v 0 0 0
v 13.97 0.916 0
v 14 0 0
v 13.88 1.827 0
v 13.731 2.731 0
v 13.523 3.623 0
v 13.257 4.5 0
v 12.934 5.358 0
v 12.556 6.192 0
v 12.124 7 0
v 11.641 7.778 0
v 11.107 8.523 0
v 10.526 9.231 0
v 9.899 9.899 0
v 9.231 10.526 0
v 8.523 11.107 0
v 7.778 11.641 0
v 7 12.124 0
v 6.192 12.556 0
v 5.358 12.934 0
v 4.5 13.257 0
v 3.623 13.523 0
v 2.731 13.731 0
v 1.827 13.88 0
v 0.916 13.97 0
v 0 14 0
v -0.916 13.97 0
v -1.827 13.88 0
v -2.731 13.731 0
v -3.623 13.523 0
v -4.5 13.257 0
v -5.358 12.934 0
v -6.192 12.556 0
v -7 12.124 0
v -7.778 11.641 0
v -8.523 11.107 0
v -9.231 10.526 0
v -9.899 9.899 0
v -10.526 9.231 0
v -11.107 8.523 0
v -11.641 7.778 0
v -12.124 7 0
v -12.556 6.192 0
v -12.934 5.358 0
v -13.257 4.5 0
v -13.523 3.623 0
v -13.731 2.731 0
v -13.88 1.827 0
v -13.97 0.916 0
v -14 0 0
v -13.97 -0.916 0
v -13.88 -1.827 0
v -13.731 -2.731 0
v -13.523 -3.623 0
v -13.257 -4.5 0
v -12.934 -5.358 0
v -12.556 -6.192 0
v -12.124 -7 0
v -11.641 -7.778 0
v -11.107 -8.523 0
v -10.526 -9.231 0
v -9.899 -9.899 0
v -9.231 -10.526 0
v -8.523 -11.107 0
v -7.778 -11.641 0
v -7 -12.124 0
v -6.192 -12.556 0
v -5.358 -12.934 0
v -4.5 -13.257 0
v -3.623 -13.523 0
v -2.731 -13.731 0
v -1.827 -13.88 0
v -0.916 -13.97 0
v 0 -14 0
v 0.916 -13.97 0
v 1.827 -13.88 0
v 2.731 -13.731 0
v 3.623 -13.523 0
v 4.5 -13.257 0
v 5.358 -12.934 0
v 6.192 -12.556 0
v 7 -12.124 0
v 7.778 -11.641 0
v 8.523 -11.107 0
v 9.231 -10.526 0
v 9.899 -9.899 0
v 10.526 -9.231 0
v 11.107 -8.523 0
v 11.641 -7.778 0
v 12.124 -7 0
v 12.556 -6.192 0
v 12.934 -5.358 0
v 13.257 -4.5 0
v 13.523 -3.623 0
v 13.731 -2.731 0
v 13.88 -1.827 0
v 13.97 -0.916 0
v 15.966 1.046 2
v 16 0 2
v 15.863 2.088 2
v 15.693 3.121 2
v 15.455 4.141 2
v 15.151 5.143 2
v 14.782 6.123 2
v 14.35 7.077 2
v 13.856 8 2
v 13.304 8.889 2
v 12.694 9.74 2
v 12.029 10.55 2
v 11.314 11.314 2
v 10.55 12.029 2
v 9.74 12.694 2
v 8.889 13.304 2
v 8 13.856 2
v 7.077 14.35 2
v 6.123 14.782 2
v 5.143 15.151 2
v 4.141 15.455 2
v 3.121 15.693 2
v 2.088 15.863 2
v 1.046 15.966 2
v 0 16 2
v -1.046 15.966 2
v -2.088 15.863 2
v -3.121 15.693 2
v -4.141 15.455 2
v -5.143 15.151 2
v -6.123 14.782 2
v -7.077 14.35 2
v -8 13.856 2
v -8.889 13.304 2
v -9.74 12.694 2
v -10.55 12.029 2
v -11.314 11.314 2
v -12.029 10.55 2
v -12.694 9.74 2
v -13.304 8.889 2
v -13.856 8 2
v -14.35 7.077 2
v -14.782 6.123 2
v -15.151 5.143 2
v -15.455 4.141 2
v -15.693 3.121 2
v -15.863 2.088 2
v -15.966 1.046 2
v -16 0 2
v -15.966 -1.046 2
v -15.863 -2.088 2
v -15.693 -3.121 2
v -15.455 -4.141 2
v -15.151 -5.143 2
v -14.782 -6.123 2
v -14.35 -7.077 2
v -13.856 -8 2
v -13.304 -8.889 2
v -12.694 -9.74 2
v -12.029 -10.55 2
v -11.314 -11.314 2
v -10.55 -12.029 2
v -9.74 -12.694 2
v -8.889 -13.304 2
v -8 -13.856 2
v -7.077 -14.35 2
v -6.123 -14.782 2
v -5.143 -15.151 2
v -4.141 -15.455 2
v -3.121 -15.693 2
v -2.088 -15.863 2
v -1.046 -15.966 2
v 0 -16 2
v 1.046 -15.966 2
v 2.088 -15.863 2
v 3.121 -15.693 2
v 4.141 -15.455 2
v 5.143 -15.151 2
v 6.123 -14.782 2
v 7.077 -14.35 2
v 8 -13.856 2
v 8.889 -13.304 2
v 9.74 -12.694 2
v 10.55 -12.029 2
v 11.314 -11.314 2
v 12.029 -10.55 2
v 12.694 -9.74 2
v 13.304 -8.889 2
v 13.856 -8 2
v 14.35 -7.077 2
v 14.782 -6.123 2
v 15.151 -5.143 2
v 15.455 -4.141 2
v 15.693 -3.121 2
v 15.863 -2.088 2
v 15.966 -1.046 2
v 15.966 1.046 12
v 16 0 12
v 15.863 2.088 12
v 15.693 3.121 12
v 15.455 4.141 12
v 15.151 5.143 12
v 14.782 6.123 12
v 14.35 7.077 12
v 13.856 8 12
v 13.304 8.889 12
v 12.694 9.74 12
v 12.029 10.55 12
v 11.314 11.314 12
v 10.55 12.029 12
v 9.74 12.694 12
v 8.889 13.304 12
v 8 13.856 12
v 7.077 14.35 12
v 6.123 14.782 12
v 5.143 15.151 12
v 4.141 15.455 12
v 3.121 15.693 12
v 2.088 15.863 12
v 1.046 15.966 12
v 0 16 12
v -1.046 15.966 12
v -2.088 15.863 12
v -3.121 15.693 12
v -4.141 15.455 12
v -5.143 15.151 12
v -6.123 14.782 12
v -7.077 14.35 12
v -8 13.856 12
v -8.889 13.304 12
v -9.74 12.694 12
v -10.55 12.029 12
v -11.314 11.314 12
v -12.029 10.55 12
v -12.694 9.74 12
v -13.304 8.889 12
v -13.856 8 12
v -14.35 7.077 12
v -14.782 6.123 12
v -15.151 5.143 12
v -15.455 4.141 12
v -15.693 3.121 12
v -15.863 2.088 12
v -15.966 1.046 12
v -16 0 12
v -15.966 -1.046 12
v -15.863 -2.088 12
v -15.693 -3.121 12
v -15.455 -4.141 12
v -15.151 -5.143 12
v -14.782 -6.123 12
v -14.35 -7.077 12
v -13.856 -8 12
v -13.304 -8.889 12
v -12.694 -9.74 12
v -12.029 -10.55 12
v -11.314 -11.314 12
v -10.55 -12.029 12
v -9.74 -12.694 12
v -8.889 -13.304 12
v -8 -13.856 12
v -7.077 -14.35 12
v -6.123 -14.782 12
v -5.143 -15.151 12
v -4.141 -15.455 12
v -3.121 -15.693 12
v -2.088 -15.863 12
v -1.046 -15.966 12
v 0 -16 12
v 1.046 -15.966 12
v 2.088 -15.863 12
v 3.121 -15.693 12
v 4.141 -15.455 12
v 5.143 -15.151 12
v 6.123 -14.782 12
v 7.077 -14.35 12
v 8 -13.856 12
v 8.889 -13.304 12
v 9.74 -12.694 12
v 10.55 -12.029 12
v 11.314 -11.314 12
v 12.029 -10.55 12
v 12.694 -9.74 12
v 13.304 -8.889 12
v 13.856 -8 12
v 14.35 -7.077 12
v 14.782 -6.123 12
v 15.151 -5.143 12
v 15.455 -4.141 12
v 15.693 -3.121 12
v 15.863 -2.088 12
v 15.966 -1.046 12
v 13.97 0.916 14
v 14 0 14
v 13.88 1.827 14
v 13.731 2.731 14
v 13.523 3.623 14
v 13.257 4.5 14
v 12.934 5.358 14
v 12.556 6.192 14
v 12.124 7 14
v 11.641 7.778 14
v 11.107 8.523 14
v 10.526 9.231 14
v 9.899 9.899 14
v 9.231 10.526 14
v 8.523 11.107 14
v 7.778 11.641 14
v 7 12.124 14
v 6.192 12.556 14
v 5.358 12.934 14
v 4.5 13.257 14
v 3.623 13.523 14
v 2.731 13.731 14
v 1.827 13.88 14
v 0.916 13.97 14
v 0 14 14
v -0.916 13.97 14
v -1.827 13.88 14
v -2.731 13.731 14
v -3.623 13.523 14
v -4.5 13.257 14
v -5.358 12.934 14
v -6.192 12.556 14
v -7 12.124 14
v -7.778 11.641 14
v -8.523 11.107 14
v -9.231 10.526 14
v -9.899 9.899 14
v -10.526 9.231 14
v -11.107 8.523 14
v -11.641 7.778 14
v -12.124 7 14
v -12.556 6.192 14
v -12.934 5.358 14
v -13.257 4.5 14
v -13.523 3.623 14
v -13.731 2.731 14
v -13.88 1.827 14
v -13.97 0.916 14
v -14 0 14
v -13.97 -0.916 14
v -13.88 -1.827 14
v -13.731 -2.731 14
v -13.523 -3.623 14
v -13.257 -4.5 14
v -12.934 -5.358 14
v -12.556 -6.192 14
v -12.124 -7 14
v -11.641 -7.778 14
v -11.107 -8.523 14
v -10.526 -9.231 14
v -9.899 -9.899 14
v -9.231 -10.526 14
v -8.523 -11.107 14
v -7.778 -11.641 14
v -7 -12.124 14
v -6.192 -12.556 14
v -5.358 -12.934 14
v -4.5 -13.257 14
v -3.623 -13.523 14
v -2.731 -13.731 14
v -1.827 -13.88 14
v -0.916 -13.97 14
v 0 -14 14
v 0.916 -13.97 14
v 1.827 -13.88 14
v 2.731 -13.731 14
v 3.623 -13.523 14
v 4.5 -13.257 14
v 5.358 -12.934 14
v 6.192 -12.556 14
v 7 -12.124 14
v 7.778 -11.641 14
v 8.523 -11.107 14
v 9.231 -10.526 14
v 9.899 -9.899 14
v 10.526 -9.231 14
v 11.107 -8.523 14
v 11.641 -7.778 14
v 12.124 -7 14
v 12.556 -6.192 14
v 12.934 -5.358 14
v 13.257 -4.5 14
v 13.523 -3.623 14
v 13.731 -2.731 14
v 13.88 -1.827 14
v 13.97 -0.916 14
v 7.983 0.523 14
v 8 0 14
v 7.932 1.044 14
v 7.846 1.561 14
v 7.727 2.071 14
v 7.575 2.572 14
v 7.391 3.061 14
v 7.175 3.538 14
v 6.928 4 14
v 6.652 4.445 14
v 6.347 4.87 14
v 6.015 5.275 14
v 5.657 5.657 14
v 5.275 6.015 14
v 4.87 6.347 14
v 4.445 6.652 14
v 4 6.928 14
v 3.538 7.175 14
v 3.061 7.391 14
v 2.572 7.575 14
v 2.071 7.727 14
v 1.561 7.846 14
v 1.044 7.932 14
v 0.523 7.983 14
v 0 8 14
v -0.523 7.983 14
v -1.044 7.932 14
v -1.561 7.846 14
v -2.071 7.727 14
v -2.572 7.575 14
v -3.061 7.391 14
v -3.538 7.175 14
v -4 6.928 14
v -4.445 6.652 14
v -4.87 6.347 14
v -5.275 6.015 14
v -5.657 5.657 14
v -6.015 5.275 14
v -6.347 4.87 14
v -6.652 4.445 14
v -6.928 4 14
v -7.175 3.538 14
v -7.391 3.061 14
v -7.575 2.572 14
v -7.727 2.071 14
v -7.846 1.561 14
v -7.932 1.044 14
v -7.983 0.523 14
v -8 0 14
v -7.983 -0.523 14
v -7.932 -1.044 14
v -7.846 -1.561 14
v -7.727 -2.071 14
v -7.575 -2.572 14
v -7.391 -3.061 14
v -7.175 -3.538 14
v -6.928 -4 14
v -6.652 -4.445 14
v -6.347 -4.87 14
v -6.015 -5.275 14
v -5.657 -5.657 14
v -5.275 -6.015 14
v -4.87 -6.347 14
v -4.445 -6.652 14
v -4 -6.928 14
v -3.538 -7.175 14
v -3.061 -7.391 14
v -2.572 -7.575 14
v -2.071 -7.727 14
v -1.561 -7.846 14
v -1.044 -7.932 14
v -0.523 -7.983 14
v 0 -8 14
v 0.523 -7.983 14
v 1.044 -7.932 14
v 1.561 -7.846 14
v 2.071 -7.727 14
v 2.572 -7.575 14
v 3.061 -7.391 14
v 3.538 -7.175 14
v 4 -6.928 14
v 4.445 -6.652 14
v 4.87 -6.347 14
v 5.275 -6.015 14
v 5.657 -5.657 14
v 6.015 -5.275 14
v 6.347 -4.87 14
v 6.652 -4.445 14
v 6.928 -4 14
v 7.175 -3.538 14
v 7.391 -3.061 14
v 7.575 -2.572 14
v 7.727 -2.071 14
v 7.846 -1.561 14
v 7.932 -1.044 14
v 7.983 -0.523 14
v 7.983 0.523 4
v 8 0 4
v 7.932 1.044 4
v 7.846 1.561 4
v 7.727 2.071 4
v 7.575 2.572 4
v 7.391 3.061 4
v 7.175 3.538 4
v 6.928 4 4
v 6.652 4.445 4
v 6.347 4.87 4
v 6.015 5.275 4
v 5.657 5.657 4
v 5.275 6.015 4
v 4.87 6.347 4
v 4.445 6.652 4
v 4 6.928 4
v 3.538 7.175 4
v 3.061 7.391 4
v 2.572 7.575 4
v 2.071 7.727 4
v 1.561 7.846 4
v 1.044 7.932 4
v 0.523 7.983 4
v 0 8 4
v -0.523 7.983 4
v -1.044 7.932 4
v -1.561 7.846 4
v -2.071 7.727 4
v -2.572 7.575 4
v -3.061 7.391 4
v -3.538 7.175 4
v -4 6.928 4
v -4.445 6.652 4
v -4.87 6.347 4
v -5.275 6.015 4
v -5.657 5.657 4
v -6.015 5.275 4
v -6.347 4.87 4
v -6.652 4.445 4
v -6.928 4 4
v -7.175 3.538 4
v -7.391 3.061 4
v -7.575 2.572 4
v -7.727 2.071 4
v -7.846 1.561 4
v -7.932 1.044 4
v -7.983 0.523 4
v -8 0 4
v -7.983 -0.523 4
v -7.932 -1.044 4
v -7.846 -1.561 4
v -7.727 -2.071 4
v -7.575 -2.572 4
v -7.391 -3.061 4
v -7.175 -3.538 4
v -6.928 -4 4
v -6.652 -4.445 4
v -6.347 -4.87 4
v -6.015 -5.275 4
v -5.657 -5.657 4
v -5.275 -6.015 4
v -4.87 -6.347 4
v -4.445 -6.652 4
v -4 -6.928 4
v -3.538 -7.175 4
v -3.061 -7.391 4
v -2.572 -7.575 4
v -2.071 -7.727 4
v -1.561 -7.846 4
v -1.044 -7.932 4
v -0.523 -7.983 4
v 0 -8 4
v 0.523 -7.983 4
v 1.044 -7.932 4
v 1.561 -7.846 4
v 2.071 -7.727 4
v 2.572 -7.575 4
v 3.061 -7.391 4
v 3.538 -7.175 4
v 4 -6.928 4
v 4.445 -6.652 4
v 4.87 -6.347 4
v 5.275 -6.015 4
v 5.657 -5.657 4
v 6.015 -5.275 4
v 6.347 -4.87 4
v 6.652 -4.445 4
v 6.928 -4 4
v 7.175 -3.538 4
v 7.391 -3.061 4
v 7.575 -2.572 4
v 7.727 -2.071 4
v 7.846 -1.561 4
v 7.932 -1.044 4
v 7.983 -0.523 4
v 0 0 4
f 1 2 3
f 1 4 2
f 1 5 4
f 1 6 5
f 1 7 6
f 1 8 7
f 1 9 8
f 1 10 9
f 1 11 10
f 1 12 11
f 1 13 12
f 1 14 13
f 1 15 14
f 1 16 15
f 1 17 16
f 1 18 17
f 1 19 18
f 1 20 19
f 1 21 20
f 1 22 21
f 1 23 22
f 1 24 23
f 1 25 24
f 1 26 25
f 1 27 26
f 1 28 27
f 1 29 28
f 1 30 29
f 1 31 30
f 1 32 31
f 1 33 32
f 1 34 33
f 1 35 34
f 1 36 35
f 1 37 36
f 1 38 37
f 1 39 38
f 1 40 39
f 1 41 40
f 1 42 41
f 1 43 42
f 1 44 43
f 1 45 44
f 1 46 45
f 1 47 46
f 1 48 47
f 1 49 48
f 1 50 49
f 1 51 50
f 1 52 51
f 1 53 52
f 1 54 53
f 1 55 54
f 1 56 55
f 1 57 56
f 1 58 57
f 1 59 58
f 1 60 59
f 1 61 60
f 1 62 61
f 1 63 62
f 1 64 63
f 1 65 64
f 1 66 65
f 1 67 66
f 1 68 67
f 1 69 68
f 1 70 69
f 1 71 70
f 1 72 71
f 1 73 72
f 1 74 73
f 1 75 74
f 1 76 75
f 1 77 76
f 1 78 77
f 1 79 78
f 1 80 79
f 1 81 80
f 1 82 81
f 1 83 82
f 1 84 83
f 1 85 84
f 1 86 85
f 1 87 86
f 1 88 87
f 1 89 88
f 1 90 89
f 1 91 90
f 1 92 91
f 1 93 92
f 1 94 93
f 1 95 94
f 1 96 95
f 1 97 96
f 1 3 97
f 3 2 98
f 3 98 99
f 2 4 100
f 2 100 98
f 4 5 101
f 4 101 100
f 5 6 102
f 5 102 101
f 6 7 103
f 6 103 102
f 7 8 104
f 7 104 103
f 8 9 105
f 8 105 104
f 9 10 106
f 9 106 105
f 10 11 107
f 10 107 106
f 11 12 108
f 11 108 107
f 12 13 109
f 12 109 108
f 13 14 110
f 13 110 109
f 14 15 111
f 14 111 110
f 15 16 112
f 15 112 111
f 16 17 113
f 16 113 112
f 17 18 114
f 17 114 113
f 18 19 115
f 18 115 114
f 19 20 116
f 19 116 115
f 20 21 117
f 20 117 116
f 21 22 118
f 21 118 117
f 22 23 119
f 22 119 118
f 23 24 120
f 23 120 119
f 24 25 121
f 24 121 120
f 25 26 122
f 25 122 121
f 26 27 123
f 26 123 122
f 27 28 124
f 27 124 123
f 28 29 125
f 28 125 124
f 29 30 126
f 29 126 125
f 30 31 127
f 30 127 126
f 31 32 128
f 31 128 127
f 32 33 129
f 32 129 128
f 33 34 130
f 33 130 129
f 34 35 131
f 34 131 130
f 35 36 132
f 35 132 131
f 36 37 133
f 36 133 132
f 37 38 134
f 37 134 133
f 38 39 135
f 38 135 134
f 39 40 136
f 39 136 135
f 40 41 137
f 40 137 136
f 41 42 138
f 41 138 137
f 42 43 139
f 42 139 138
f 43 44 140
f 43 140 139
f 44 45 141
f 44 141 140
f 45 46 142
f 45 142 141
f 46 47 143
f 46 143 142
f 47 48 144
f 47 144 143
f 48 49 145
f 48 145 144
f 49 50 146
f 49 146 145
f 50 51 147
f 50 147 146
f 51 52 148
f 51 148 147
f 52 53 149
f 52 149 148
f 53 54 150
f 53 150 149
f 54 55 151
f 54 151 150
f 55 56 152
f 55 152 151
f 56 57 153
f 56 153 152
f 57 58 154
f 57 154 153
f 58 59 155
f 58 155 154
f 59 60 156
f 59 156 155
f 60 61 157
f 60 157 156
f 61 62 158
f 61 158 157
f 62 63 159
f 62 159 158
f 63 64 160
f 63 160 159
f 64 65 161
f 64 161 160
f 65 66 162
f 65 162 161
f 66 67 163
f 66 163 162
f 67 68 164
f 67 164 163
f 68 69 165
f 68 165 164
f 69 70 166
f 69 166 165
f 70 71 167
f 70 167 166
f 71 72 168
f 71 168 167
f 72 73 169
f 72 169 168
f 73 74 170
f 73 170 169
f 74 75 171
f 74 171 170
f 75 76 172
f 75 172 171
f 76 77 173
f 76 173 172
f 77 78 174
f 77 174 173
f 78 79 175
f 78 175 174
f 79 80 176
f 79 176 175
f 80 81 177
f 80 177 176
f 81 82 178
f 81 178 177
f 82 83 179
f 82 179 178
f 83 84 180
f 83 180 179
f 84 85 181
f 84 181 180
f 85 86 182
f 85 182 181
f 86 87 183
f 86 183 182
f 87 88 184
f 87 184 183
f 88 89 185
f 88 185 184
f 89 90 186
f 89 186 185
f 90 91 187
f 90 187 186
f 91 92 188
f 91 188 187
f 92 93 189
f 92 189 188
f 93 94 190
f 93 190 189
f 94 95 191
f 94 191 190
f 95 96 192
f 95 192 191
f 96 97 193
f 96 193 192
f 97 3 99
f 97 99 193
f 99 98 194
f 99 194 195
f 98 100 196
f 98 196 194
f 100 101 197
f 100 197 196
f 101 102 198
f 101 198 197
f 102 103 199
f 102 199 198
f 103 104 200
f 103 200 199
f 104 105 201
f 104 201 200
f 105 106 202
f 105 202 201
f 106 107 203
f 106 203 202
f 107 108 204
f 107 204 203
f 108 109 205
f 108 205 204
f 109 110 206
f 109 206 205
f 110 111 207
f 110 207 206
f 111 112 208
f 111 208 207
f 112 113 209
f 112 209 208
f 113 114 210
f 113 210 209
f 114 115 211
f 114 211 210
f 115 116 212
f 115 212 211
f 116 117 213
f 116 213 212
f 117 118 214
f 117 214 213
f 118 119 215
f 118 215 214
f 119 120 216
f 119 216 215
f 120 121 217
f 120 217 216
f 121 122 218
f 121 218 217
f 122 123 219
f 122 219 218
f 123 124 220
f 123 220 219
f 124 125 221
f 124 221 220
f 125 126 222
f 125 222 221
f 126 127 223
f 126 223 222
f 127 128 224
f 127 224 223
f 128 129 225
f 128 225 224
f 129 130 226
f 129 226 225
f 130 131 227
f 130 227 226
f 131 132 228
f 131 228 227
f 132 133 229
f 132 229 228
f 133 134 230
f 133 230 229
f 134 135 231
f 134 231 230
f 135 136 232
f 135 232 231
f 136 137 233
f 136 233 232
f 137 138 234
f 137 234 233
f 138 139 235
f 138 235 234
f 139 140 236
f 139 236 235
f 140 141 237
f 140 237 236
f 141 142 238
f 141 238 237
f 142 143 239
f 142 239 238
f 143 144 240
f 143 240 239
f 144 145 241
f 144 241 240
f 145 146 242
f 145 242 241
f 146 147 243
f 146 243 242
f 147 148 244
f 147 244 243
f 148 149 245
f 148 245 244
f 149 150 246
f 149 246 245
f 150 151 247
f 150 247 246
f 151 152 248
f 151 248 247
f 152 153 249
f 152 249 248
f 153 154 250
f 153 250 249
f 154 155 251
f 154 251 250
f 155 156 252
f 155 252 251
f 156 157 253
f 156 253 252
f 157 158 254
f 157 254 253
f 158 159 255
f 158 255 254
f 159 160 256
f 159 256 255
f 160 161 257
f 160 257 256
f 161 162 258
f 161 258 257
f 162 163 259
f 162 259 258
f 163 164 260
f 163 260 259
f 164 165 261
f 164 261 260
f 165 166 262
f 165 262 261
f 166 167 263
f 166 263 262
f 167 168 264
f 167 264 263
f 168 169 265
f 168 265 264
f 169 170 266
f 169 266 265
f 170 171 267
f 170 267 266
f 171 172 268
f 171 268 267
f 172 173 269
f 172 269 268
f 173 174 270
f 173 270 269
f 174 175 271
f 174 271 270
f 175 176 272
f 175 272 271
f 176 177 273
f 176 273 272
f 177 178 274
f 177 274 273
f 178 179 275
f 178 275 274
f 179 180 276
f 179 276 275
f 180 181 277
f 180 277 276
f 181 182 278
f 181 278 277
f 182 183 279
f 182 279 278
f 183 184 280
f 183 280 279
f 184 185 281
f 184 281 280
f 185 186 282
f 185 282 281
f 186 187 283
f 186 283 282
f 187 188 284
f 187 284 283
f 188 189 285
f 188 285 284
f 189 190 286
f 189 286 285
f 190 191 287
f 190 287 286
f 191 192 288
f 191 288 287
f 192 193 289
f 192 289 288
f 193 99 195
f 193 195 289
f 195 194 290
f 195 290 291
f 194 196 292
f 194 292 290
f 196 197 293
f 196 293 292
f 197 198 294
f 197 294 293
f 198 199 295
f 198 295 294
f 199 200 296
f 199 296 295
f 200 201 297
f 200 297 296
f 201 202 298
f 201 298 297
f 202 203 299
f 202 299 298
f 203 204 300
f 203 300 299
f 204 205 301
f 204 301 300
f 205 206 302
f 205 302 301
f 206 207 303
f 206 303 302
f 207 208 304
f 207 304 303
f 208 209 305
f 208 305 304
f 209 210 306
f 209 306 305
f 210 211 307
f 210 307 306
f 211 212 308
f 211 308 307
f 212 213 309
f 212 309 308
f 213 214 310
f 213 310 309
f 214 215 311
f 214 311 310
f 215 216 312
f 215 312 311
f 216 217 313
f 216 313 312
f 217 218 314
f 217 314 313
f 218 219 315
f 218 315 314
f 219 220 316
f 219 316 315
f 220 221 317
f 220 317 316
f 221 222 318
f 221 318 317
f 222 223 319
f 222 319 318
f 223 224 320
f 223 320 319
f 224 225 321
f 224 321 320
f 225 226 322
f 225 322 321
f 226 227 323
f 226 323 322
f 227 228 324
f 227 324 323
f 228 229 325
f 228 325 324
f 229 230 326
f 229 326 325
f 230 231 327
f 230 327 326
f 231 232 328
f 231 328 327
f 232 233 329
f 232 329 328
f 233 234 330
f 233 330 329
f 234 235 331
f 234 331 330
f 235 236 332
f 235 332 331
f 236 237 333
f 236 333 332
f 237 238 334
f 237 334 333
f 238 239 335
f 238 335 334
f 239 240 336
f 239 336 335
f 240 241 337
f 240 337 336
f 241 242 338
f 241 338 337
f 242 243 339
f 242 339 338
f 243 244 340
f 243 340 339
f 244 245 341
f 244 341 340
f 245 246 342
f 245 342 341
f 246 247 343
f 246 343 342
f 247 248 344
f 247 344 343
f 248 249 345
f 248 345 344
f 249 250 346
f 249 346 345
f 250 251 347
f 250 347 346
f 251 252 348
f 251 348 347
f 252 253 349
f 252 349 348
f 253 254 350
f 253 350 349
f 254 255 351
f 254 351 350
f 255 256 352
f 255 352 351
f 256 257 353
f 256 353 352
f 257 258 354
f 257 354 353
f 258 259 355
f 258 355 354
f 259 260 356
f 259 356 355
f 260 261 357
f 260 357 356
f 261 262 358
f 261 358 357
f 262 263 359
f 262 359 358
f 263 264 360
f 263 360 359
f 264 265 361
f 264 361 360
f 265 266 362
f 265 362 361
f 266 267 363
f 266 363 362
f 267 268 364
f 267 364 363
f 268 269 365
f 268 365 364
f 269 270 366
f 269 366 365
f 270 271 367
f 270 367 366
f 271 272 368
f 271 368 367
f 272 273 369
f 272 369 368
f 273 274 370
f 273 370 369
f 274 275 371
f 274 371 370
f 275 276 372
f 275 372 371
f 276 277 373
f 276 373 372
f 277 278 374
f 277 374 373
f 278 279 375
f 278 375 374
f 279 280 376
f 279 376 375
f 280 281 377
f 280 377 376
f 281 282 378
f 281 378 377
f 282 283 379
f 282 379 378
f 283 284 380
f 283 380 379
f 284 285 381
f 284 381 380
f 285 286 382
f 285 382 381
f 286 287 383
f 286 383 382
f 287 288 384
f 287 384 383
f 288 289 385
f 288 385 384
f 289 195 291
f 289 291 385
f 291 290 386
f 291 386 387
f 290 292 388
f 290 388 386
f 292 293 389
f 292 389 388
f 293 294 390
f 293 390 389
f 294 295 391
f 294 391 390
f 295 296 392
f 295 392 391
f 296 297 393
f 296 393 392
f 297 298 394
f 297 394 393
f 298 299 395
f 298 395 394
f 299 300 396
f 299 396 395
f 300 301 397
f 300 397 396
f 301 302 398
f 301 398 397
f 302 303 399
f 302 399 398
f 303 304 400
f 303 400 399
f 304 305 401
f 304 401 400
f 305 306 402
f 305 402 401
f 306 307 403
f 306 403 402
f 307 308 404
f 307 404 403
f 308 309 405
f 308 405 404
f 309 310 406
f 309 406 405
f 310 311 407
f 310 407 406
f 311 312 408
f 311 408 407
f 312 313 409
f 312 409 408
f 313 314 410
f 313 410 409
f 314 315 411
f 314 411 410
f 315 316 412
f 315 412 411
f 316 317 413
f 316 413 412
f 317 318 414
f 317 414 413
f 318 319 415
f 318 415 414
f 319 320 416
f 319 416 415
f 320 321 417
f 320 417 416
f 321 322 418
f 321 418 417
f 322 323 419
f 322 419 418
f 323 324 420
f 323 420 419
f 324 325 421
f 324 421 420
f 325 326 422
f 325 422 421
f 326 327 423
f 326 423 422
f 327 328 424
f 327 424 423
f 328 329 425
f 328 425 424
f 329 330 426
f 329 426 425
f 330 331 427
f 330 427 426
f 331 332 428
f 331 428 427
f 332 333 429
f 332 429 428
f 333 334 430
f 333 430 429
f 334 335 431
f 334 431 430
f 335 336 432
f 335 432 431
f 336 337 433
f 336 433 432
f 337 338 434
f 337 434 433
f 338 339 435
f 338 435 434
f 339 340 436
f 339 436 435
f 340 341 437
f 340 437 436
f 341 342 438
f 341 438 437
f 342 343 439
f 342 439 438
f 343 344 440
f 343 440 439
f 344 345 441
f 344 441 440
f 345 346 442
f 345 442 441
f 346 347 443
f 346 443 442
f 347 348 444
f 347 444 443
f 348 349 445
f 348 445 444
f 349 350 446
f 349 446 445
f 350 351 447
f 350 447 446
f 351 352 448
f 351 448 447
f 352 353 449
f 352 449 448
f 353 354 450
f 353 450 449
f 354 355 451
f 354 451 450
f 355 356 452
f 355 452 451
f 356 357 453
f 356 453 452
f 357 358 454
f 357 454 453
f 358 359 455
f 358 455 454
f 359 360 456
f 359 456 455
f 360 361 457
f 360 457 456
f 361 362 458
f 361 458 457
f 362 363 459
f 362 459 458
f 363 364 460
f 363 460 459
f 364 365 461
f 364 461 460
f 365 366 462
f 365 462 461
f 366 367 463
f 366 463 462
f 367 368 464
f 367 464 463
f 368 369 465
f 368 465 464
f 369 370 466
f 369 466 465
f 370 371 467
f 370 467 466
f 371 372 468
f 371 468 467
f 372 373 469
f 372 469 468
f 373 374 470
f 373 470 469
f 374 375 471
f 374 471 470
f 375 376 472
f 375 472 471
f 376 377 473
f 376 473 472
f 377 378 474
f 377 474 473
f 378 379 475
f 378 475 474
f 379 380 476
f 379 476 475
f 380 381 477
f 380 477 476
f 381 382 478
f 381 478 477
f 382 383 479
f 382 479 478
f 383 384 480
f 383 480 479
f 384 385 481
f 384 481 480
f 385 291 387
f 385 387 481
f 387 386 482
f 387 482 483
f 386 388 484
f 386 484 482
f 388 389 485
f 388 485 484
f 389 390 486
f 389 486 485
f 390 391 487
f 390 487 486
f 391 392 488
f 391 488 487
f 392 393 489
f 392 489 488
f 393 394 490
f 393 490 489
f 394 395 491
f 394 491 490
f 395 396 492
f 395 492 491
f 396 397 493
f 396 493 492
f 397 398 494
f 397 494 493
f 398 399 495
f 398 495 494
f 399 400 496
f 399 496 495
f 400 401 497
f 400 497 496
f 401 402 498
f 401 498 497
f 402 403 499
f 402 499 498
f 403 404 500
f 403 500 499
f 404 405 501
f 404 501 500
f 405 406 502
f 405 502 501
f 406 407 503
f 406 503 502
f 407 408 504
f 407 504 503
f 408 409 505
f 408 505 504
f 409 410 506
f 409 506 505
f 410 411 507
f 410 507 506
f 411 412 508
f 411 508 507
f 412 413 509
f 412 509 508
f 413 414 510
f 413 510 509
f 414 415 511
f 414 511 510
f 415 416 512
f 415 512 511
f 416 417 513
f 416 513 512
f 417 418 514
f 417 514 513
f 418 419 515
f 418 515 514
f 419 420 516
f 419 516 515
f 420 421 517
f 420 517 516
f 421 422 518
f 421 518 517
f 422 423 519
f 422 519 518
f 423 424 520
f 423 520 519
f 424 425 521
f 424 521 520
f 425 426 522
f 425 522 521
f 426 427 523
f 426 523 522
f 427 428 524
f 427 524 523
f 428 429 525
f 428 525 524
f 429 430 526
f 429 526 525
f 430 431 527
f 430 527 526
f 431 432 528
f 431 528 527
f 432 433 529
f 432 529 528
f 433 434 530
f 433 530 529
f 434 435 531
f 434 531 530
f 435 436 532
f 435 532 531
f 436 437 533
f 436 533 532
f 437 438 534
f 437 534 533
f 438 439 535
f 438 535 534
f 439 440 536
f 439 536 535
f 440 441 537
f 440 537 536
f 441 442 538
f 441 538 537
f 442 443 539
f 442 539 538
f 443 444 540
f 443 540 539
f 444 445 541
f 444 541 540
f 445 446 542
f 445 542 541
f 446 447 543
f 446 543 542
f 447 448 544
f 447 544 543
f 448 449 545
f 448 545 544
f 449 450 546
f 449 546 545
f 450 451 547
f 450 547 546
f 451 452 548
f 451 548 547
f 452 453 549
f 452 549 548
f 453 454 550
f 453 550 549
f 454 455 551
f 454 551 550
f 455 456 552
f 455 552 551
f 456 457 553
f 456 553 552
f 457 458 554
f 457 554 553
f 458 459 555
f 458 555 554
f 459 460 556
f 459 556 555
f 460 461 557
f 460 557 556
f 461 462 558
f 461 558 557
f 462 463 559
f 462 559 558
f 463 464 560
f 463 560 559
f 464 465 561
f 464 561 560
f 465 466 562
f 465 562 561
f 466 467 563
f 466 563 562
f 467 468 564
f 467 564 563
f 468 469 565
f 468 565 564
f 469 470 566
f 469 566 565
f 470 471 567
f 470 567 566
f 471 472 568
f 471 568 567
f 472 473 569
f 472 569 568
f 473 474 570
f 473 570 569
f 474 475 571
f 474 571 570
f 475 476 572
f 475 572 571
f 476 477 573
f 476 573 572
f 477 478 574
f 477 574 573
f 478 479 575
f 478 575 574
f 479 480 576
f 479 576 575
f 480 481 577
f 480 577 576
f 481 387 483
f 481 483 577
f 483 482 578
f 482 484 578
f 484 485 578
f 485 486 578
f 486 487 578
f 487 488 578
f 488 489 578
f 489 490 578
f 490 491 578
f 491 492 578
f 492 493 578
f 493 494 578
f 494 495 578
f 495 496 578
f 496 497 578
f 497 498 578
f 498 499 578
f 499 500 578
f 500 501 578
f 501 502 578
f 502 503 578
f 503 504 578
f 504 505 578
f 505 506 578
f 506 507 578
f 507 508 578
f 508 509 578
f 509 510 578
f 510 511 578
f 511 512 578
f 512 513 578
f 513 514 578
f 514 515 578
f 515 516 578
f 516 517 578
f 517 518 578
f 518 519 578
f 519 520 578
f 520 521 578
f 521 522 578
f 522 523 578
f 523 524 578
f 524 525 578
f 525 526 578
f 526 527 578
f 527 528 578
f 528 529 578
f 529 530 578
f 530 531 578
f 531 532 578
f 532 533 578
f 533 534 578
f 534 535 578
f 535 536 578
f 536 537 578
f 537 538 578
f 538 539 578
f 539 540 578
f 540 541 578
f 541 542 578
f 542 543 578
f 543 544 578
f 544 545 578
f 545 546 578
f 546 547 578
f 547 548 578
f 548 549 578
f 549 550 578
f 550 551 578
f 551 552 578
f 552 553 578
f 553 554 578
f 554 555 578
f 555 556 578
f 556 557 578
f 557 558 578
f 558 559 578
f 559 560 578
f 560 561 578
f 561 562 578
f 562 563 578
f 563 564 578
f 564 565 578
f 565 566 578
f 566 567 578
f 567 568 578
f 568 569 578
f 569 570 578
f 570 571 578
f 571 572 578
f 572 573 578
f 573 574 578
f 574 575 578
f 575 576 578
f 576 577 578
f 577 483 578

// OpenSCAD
// Original MechIntel educational model. CC0-1.0. Units: mm.
// Not a standardized or load-rated component.
$fn=96;
// Section points: [radius, height], mm. Edit to change the profile.
section=[[0, 0], [14, 0], [16, 2], [16, 12], [14, 14], [8, 14], [8, 4], [0, 4]];
rotate_extrude($fn=96) polygon(points=section);
